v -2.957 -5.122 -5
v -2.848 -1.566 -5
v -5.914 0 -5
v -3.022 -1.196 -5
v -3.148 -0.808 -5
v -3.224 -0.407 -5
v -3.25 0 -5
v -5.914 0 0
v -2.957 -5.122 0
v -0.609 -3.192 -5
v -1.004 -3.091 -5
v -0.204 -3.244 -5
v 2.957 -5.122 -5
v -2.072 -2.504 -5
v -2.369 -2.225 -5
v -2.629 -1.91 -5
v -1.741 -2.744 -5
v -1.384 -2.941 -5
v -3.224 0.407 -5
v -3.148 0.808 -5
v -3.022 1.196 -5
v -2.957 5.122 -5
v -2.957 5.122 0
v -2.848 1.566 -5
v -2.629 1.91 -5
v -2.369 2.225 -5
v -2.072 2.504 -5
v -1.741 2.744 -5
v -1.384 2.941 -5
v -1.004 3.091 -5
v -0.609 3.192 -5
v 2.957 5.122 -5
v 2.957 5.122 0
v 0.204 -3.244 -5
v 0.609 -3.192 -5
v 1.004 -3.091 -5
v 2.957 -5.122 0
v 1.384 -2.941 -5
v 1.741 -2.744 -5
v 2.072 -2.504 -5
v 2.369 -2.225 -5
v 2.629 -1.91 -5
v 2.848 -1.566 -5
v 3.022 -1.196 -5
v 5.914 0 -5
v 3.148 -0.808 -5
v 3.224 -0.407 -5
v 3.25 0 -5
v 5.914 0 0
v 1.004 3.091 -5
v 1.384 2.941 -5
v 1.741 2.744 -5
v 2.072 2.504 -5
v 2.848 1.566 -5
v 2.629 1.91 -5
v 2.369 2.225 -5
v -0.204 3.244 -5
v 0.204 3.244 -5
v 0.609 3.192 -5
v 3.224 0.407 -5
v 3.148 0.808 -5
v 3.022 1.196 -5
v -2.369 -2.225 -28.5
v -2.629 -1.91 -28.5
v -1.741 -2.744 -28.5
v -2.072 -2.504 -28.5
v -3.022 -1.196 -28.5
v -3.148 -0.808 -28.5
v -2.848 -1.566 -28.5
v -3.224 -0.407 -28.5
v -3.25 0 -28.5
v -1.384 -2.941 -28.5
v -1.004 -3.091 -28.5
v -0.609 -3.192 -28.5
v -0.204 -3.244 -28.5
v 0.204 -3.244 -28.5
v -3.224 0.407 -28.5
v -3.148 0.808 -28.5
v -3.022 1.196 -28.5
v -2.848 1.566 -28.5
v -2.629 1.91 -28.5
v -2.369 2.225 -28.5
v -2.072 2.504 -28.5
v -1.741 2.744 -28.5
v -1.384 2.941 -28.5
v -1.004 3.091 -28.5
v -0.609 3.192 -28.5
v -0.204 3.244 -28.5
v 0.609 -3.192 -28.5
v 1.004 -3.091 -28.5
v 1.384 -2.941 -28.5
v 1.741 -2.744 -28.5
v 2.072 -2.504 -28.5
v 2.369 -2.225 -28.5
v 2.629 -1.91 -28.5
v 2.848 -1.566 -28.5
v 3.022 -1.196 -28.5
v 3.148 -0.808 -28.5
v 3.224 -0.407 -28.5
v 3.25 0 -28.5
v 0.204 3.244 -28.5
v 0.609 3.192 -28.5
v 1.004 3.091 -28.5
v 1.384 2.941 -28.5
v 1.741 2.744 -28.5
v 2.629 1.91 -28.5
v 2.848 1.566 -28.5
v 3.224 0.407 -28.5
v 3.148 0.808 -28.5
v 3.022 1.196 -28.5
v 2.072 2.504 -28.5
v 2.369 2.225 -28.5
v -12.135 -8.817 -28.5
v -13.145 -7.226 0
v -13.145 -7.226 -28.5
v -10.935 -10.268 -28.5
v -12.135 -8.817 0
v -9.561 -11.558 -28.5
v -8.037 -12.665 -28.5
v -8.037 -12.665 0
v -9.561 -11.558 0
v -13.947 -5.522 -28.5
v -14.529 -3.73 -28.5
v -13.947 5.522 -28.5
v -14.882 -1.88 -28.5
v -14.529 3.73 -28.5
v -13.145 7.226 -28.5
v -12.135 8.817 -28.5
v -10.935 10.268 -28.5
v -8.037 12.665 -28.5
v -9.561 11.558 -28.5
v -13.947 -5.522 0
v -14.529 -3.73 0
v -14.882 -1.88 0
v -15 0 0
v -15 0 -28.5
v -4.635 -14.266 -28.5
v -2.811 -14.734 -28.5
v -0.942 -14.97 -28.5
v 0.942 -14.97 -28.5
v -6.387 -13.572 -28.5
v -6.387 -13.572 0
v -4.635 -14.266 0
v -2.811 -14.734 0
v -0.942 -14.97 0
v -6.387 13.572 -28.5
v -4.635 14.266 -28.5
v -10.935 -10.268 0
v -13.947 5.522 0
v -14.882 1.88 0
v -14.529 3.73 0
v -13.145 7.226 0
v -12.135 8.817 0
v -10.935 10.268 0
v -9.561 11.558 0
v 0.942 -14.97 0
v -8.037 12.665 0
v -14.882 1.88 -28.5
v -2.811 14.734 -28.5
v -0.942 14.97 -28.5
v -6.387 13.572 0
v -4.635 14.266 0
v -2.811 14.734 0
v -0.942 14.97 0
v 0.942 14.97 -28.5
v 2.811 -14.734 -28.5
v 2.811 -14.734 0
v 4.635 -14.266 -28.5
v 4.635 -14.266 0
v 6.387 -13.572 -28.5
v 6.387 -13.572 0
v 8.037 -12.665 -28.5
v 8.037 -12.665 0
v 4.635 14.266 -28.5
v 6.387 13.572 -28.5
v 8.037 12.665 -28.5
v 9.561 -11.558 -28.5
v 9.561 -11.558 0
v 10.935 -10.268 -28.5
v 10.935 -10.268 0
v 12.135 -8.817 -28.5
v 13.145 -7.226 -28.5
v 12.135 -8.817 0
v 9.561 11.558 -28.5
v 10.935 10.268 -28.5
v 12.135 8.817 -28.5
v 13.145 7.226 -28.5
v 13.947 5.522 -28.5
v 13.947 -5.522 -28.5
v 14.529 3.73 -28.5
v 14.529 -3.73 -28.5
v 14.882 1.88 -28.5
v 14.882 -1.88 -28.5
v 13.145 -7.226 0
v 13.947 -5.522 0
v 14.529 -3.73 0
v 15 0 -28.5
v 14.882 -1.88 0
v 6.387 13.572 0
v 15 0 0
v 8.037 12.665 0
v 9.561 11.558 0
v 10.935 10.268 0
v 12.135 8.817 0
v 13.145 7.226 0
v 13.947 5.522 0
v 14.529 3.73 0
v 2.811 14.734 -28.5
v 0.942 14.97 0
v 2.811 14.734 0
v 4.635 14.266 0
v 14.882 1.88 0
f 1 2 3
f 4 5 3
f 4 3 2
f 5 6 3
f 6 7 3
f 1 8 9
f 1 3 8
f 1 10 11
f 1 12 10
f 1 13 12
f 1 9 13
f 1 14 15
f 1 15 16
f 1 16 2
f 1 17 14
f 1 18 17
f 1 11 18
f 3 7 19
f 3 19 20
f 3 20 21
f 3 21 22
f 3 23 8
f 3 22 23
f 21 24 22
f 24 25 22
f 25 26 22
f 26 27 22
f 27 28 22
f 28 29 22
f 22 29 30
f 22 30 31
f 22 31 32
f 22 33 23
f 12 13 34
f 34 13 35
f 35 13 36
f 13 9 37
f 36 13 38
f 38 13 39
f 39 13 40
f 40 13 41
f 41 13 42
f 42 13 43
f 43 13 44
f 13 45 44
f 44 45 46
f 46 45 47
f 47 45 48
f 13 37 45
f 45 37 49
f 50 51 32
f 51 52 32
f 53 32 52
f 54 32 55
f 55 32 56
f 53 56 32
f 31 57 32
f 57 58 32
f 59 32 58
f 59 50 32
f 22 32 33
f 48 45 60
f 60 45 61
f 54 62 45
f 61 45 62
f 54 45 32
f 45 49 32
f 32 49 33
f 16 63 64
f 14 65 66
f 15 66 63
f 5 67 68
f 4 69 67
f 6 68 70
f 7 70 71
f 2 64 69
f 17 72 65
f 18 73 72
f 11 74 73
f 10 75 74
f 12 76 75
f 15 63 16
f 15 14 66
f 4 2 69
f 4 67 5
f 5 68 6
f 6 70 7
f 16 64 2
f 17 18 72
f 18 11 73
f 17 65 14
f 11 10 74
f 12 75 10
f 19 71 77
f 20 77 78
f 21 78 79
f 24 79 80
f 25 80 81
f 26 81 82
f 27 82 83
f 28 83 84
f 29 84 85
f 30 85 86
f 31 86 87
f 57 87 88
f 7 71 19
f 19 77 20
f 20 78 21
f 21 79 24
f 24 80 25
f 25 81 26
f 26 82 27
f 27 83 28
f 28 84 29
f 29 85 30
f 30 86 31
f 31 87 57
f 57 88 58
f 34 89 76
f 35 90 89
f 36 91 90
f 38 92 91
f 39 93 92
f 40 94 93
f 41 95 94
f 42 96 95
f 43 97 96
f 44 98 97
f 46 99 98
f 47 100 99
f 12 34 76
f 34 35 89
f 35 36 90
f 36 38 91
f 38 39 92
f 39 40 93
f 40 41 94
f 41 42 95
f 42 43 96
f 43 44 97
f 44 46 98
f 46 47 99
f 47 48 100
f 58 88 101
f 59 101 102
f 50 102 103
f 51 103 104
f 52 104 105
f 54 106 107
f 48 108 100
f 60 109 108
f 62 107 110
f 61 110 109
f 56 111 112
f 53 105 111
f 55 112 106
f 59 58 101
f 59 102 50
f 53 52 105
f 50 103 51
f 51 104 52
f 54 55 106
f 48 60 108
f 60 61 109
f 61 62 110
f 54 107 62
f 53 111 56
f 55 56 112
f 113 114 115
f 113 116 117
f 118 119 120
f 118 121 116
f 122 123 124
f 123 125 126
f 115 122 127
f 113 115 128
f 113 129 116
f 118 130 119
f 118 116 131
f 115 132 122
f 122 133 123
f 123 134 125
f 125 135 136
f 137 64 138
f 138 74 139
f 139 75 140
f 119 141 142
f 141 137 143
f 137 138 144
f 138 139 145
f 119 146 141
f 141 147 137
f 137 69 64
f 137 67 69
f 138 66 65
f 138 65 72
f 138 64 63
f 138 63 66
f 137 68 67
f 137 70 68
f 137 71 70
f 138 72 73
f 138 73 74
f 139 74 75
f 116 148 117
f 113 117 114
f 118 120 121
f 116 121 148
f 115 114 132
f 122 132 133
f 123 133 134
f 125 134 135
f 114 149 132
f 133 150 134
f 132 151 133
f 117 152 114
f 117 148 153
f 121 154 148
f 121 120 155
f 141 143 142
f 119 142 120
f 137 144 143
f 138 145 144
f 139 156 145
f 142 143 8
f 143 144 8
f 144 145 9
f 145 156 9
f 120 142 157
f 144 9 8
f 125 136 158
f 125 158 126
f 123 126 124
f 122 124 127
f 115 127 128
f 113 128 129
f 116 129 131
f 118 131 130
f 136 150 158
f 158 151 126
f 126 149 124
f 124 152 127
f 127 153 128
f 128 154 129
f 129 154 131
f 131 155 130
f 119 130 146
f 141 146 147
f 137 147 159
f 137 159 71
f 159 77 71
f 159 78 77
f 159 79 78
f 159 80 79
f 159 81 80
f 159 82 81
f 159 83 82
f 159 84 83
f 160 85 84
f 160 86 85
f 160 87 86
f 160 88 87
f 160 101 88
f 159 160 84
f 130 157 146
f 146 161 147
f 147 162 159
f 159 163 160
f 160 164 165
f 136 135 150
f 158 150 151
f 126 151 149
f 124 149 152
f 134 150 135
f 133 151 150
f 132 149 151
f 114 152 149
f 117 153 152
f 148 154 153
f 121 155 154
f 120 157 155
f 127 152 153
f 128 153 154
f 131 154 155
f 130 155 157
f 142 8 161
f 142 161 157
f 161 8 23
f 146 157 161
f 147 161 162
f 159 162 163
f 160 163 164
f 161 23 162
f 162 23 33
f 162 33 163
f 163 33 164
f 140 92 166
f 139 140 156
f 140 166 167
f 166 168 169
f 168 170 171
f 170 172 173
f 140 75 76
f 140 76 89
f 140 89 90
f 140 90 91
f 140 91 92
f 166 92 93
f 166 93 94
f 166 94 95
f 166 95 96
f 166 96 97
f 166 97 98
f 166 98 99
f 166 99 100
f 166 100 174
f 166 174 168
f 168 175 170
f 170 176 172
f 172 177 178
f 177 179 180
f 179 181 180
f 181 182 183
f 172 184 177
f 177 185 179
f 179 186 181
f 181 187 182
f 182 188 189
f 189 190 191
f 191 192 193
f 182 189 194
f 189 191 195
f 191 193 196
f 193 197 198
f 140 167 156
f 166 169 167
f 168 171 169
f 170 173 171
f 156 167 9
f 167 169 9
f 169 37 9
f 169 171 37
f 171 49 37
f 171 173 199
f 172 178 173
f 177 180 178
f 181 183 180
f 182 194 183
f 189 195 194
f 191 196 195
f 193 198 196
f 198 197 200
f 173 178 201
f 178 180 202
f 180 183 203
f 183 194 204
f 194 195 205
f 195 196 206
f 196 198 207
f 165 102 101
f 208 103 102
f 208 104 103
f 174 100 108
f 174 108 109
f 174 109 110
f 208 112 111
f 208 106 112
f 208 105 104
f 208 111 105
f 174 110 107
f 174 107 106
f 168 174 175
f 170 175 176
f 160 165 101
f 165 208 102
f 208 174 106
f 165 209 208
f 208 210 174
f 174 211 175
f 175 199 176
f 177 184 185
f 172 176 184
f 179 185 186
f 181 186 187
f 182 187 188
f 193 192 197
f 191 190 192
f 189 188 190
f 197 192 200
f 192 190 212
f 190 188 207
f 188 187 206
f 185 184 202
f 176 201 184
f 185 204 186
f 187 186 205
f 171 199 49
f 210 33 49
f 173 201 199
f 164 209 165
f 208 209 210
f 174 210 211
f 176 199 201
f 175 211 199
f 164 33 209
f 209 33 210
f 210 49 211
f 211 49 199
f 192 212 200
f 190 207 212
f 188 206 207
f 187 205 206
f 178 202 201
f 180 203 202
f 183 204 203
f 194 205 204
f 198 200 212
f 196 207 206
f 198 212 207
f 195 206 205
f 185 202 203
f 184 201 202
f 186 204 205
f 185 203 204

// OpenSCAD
$fn = 50;

difference() {
	union() {
		translate(v = [0, 0, -28.5]) {
			cylinder(h = 28.5, r = 15.0);
		}
	}
	union() {
		translate(v = [0, 0, 0]) {
			rotate(a = [0, 0, 0]) {
				difference() {
					union() {
						translate(v = [0, 0, -5]) {
							linear_extrude(height = 5) {
								polygon(points = [[5.914249999999999, 0.0], [2.957125, 5.1218907443321156], [-2.9571249999999982, 5.1218907443321156], [-5.914249999999999, 7.242867331857232e-16], [-2.9571250000000022, -5.121890744332115], [2.9571249999999956, -5.121890744332118]]);
							}
						}
					}
					union();
				}
			}
		}
		#translate(v = [0, 0, -100.0]) {
			cylinder(h = 200, r = 3.25);
		}
	}
}
